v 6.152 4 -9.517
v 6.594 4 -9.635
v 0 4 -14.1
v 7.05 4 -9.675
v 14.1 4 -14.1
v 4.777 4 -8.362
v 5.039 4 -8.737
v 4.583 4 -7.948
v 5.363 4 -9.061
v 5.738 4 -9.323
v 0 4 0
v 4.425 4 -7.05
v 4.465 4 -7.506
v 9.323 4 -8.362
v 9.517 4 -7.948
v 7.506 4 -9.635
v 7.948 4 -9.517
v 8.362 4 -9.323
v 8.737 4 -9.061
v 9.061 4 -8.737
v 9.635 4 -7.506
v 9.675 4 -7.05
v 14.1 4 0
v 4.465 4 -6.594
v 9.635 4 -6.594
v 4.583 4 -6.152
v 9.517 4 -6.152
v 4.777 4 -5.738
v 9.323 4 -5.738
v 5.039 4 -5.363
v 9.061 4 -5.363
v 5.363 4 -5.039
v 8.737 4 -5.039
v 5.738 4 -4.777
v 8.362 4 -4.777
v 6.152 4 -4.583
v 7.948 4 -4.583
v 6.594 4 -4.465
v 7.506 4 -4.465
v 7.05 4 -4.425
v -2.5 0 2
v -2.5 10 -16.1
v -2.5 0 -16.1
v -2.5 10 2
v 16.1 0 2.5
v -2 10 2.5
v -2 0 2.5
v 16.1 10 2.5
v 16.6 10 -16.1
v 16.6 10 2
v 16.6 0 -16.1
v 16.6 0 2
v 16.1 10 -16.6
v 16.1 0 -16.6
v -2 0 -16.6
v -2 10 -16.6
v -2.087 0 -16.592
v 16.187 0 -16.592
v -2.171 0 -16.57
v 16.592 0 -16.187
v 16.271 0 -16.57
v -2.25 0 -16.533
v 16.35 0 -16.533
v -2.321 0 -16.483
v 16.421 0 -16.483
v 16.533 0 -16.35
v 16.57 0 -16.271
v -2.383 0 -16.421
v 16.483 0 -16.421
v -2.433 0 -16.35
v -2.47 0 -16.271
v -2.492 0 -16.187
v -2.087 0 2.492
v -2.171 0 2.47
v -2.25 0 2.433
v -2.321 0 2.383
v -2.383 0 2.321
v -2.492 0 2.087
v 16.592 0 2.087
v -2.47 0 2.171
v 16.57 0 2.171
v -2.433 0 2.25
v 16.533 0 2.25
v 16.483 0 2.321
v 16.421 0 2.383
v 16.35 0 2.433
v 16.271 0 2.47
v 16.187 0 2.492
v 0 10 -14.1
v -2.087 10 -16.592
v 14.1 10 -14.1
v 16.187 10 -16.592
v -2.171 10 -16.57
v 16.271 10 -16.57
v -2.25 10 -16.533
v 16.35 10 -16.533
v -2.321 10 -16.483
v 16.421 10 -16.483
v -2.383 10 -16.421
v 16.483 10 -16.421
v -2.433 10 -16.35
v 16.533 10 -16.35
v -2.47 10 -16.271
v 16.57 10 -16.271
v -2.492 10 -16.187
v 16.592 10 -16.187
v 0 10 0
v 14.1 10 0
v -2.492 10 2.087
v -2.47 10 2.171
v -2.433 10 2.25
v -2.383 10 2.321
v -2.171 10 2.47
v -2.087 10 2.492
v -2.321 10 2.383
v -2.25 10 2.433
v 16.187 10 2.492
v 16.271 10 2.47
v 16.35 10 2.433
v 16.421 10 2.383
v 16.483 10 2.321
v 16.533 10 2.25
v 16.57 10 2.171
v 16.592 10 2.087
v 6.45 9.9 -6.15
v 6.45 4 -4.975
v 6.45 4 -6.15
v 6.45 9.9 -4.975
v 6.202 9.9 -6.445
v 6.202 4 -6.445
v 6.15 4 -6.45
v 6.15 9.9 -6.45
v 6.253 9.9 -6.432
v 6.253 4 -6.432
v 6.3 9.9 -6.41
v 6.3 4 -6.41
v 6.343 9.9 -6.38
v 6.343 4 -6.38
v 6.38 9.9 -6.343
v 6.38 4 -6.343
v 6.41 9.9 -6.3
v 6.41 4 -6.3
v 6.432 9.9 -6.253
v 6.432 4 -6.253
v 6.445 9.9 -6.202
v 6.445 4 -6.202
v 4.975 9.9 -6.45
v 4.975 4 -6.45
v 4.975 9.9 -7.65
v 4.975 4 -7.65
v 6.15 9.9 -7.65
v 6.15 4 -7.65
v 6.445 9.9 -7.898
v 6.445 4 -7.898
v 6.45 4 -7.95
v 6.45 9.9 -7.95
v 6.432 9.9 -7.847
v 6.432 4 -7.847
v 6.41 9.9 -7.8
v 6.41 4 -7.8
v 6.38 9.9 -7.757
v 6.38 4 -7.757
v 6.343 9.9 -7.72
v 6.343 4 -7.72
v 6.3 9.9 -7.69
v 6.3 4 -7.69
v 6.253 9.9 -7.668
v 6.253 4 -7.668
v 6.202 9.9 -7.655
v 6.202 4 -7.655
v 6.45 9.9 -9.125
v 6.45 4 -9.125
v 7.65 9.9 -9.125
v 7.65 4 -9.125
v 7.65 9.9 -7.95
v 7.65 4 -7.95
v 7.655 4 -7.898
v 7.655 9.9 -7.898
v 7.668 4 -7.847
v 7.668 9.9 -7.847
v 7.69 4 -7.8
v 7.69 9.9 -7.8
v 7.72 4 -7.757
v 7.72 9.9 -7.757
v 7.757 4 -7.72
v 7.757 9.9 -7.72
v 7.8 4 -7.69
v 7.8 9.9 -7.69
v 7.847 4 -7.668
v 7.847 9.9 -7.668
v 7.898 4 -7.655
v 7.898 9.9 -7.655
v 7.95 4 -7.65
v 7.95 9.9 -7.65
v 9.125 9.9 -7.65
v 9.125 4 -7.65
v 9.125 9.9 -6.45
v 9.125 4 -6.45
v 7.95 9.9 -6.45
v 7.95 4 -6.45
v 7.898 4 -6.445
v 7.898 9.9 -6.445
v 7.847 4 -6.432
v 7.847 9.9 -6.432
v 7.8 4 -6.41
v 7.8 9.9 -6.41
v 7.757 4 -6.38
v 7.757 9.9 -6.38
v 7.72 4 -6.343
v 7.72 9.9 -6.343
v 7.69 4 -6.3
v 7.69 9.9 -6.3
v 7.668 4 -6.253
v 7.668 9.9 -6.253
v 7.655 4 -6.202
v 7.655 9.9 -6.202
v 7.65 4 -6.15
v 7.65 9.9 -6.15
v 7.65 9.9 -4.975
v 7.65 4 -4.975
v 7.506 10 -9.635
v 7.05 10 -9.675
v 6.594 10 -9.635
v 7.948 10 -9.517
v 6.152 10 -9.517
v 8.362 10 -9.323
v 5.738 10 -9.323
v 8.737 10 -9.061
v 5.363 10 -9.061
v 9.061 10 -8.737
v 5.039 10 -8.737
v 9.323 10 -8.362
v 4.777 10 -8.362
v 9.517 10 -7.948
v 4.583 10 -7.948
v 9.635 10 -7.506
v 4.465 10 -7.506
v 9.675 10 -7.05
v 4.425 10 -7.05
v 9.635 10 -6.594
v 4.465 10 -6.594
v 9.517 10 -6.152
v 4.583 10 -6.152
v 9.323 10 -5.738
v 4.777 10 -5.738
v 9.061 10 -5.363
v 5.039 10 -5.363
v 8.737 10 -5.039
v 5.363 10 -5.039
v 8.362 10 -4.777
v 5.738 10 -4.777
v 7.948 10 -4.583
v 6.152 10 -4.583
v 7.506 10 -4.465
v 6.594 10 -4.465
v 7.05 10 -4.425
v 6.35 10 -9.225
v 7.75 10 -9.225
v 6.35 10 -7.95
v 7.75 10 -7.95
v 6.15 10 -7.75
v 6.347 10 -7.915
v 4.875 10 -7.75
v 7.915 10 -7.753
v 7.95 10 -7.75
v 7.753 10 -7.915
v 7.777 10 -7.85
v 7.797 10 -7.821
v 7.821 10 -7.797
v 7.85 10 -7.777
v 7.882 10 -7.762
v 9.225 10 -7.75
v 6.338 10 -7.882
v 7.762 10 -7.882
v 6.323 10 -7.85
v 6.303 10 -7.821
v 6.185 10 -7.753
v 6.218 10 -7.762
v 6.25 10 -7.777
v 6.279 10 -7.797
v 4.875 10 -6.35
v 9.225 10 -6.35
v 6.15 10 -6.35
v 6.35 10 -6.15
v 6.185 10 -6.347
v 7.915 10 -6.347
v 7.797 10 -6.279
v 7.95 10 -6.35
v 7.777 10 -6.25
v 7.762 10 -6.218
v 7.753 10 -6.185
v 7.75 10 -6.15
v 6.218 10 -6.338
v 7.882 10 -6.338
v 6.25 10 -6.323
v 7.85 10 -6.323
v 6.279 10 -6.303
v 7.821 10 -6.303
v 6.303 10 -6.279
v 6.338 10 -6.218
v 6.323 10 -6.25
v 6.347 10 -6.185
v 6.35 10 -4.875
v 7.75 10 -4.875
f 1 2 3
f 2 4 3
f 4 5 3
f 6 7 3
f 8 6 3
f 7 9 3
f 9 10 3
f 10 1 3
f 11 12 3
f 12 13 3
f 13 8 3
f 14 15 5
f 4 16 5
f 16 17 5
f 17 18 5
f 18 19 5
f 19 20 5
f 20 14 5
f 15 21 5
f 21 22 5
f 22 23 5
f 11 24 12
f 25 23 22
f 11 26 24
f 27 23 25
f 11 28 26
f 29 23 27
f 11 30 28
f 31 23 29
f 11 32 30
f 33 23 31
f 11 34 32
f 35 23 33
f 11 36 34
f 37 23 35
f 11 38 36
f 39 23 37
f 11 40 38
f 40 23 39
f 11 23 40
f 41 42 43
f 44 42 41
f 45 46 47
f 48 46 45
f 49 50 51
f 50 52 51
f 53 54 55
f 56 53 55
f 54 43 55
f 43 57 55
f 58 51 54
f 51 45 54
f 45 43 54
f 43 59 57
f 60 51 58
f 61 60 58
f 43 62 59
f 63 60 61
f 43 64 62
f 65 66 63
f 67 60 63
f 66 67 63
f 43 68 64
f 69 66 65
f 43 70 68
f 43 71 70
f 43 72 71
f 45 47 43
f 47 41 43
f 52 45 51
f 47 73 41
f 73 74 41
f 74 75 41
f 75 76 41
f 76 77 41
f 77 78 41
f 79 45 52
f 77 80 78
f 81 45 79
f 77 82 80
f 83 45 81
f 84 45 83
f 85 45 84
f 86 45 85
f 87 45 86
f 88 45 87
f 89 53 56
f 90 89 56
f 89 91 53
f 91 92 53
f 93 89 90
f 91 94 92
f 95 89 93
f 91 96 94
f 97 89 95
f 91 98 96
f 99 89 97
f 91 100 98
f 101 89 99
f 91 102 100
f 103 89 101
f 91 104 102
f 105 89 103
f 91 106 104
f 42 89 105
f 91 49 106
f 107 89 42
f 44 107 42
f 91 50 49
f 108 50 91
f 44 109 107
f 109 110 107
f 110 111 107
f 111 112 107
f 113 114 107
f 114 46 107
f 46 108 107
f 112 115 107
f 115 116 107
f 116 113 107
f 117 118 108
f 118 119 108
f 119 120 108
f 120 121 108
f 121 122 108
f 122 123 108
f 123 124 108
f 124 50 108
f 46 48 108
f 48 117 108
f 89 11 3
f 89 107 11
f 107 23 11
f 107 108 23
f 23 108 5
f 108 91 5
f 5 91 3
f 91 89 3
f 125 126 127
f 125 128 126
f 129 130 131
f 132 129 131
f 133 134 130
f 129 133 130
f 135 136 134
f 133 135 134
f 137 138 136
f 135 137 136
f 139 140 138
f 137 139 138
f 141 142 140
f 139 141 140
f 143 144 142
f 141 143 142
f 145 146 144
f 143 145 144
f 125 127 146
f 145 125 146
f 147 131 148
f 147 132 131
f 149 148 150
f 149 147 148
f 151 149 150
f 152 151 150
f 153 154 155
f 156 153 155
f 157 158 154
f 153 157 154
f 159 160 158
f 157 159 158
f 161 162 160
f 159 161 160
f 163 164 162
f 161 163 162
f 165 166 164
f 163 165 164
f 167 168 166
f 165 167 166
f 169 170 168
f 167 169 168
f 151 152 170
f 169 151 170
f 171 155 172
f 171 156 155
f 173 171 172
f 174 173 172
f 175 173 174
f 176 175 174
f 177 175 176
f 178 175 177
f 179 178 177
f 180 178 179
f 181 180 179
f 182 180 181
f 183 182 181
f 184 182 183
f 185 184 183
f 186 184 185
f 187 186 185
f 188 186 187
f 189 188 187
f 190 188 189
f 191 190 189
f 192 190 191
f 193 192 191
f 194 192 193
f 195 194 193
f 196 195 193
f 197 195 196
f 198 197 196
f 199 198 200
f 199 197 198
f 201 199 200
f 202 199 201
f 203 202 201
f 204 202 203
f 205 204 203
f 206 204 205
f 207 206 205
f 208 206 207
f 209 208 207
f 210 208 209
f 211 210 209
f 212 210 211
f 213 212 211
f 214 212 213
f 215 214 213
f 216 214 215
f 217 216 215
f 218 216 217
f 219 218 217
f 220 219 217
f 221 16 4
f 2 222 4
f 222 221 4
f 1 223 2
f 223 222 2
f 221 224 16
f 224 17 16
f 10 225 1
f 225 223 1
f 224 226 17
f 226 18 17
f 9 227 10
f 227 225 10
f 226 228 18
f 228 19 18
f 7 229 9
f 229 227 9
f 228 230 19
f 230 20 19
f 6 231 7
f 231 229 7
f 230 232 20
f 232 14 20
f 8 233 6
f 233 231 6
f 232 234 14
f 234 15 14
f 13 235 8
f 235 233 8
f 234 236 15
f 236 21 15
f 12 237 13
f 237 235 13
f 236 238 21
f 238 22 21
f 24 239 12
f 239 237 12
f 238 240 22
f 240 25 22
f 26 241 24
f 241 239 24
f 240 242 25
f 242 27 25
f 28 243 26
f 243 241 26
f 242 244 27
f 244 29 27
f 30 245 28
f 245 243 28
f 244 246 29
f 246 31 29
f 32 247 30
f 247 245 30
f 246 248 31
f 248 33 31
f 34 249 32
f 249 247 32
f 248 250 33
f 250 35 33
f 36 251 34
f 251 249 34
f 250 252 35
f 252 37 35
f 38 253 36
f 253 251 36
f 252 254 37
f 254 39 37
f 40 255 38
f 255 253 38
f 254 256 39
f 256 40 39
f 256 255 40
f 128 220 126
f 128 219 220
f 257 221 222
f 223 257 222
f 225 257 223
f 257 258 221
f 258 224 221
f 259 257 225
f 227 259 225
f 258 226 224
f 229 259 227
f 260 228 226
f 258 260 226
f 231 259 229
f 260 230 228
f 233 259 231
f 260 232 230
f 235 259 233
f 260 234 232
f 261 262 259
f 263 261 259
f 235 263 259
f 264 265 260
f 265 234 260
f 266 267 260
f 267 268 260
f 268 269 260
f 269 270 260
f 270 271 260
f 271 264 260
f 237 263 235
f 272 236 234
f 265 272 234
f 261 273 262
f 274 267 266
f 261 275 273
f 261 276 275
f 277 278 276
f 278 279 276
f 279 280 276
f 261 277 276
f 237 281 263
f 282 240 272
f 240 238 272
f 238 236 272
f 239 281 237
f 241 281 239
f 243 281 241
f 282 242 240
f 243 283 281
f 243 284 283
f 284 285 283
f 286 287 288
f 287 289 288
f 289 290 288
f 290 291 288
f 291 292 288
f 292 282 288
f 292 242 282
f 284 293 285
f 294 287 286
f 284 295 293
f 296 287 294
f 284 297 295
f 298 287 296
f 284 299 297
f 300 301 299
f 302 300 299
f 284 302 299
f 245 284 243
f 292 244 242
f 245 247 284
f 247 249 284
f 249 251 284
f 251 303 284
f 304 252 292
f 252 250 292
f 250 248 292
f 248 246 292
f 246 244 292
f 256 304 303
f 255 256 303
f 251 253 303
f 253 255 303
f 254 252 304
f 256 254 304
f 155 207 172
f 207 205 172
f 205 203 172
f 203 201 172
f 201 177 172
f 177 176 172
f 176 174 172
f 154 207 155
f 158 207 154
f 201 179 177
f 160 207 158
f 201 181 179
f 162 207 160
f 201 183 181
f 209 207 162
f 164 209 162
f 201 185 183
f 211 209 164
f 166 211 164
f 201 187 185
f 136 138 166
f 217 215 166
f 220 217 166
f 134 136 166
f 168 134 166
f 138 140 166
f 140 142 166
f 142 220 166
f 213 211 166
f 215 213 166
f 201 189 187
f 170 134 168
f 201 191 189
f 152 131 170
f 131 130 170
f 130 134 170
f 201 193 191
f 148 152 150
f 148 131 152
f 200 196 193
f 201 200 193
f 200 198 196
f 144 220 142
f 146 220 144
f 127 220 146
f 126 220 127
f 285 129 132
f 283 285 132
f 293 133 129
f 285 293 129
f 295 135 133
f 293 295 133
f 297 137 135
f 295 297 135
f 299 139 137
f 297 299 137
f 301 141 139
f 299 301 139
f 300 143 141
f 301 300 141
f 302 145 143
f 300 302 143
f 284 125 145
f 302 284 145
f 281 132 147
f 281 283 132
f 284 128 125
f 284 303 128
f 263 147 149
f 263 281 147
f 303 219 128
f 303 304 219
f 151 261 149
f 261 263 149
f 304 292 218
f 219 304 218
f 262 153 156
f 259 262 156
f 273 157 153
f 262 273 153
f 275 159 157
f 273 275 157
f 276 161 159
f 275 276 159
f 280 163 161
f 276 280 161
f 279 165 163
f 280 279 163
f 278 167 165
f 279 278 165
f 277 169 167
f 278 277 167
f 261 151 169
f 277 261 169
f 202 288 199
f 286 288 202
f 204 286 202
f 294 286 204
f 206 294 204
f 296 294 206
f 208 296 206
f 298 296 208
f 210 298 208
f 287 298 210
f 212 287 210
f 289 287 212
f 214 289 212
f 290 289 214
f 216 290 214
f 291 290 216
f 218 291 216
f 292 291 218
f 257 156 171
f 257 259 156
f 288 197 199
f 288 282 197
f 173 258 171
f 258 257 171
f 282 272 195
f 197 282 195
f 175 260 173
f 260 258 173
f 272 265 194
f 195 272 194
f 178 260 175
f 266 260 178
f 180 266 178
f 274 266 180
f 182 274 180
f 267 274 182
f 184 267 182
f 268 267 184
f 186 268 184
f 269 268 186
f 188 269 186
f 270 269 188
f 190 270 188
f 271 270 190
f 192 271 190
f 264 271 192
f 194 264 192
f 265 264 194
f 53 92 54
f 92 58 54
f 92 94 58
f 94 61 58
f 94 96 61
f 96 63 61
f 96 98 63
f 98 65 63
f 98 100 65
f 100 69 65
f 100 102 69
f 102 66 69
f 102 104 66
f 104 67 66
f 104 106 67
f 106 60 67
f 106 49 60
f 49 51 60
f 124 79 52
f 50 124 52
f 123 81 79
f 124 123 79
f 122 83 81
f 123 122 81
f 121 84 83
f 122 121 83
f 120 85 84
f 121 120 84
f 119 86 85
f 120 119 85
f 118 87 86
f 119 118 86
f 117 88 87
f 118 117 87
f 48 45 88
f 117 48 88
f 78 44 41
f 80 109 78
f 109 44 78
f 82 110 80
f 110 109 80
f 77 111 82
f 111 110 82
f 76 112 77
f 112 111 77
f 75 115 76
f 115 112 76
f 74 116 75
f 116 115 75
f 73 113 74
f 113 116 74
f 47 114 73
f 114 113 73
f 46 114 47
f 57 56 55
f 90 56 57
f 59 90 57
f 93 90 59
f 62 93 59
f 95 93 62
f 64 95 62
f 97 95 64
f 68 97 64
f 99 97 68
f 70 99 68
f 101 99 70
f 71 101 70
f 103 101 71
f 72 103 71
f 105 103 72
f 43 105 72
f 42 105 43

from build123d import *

# Parameters (mm, degrees)
SKETCH1_W           = 19.1
SKETCH1_H           = 19.1
SKETCH1_W_2         = 14.1
SKETCH1_H_2         = 14.1
BOSS_EXTRUDE1_DEPTH = 4
SKETCH1_3_W         = 19.1
SKETCH1_3_H         = 19.1
SKETCH1_3_W_2       = 14.1
SKETCH1_3_H_2       = 14.1
BOSS_EXTRUDE2_DEPTH = 10
SKETCH2_R           = 2.625
BOSS_EXTRUDE3_DEPTH = 6
CHAMFER1_SIZE       = 0.1
FILLET1_R           = 0.5


with BuildPart() as part:
    # Sketch1 → Boss-Extrude1 (new body)
    # profile 1 of 2: a face of its own
    with BuildSketch(Plane(origin=(0, 0, 0), x_dir=(1, 0, 0), z_dir=(0, 1, 0))):
        with Locations((7.05, 7.05)):
            Rectangle(SKETCH1_W, SKETCH1_H)
        with Locations((7.05, 7.05)):
            Rectangle(SKETCH1_W_2, SKETCH1_H_2, mode=Mode.SUBTRACT)
    # profile 2 of 2: a face of its own
    with BuildSketch(Plane(origin=(0, 0, 0), x_dir=(1, 0, 0), z_dir=(0, 1, 0))):
        with Locations((7.05, 7.05)):
            Rectangle(SKETCH1_W_2, SKETCH1_H_2)
    extrude(amount=BOSS_EXTRUDE1_DEPTH)

    # Sketch1<3> → Boss-Extrude2 (add)
    with BuildSketch(Plane(origin=(0, 0, 0), x_dir=(1, 0, 0), z_dir=(0, 1, 0))):
        with Locations((7.05, 7.05)):
            Rectangle(SKETCH1_3_W, SKETCH1_3_H)
        with Locations((7.05, 7.05)):
            Rectangle(SKETCH1_3_W_2, SKETCH1_3_H_2, mode=Mode.SUBTRACT)
    extrude(amount=BOSS_EXTRUDE2_DEPTH)

    # Sketch2 → Boss-Extrude3 (add)
    with BuildSketch(Plane(origin=(0, 4, 0), x_dir=(1, 0, 0), z_dir=(0, 1, 0))):
        with Locations(Location((7.05, 7.05, 0), (0, 0, 90))):
            Circle(SKETCH2_R)
        with BuildLine():
            Line((6.15, 6.45), (4.975, 6.45))
            Line((4.975, 6.45), (4.975, 7.65))
            Line((4.975, 7.65), (6.15, 7.65))
            ThreePointArc((6.15, 7.65), (6.362132034, 7.737867966), (6.45, 7.95))
            Line((6.45, 7.95), (6.45, 9.125))
            Line((6.45, 9.125), (7.65, 9.125))
            Line((7.65, 9.125), (7.65, 7.95))
            ThreePointArc((7.65, 7.95), (7.737867966, 7.737867966), (7.95, 7.65))
            Line((7.95, 7.65), (9.125, 7.65))
            Line((9.125, 7.65), (9.125, 6.45))
            Line((9.125, 6.45), (7.95, 6.45))
            ThreePointArc((7.95, 6.45), (7.737867966, 6.362132034), (7.65, 6.15))
            Line((7.65, 6.15), (7.65, 4.975))
            Line((7.65, 4.975), (6.45, 4.975))
            Line((6.45, 4.975), (6.45, 6.15))
            ThreePointArc((6.45, 6.15), (6.362132034, 6.362132034), (6.15, 6.45))
        make_face(mode=Mode.SUBTRACT)
    extrude(amount=BOSS_EXTRUDE3_DEPTH)

    # Chamfer1
    chamfer1_edges = [part.edges().sort_by_distance(p)[0] for p in [
        (5.5625, 10, -6.45),
        (7.05, 10, -9.125),
        (7.65, 10, -8.5375),
        (9.125, 10, -7.05),
        (8.5375, 10, -6.45),
        (7.65, 10, -5.5625),
        (7.05, 10, -4.975),
        (6.45, 10, -5.5625),
        (6.362132034, 10, -6.362132034),
        (4.975, 10, -7.05),
        (5.5625, 10, -7.65),
        (6.362132034, 10, -7.737867966),
        (6.45, 10, -8.5375),
        (7.737867966, 10, -7.737867966),
        (8.5375, 10, -7.65),
        (7.737867966, 10, -6.362132034),
    ]]
    chamfer(chamfer1_edges, length=CHAMFER1_SIZE)

    # Fillet1
    fillet1_edges = [part.edges().sort_by_distance(p)[0] for p in [
        (-2.5, 5, -16.6),
        (16.6, 5, -16.6),
        (16.6, 5, 2.5),
        (-2.5, 5, 2.5),
    ]]
    fillet(fillet1_edges, radius=FILLET1_R)


solid = part.part
